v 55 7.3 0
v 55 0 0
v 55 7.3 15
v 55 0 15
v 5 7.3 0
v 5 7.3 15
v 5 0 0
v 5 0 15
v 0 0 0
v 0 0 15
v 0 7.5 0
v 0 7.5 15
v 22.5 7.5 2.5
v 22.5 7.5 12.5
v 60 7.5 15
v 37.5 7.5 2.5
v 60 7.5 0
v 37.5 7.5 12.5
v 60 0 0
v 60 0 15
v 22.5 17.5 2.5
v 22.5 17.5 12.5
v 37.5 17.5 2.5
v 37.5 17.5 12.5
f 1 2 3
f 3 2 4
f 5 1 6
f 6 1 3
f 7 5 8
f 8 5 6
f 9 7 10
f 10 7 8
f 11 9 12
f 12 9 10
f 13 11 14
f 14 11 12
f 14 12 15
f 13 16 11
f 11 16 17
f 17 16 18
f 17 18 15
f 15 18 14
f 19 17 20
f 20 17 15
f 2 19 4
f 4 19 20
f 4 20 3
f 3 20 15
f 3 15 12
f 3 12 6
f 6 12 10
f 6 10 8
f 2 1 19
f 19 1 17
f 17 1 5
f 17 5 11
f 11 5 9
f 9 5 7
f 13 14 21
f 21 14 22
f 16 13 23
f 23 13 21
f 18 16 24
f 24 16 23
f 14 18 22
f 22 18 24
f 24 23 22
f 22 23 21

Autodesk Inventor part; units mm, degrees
ref_plane "YZ Plane" through (0, 0, 0) normal (1, 0, 0) x (0, 1, 0)
ref_plane "XZ Plane" through (0, 0, 0) normal (0, 1, 0) x (-1, 0, 0)
ref_plane "XY Plane" through (0, 0, 0) normal (0, 0, 1) x (1, 0, 0)
sketch "Sketch1" plane through (0, 0, 0) normal (0, 0, 1) x (1, 0, 0)
  line L0 (0, 0) -> (5, 0)
  line L1 (5, 0) -> (5, 7.3)
  line L2 (5, 7.5) -> (0, 7.5)
  line L3 (0, 7.5) -> (0, 0)
  line L4 (5, 7.5) -> (55, 7.5)
  line L5 (55, 7.5) -> (55, 7.3)
  line L6 (55, 7.3) -> (5, 7.3)
  line L7 (5, 7.3) -> (5, 7.5)
  line L8 (55, 7.5) -> (60, 7.5)
  line L9 (60, 7.5) -> (60, 0)
  line L10 (60, 0) -> (55, 0)
  line L11 (55, 0) -> (55, 7.5)
  dimension "d0" = 5
  dimension "d1" = 7.5
  dimension "d2" = 50
  dimension "d3" = 0.2
  dimension "d4" = 5
  dimension "d5" = 7.5
extrude "Extrusion1" add sketch "Sketch1" along normal blind 15
sketch "Sketch2" plane through (0, 7.5, 0) normal (0, 1, 0) x (1, 0, 0)
  line L0 (0, 0) -> (0, -15) projected
  line L1 (0, -7.5) -> (30, -7.5) construction
  line L2 (60, 0) -> (60, -15) projected
  line L3 (30, -7.5) -> (30, 0) construction
  line L4 (5, 0) -> (55, 0) projected
  line L5 (22.5, -12.5) -> (37.5, -12.5)
  line L6 (37.5, -12.5) -> (37.5, -2.5)
  line L7 (37.5, -2.5) -> (22.5, -2.5)
  line L8 (22.5, -2.5) -> (22.5, -12.5)
  line L9 (22.5, -12.5) -> (37.5, -2.5) construction
  line L10 (37.5, -12.5) -> (22.5, -2.5) construction
  dimension "d8" = 30
  dimension "d9" = 15
  dimension "d10" = 10
extrude "Extrusion2" add sketch "Sketch2" along normal blind 10
properties part number "bridgeTest"
